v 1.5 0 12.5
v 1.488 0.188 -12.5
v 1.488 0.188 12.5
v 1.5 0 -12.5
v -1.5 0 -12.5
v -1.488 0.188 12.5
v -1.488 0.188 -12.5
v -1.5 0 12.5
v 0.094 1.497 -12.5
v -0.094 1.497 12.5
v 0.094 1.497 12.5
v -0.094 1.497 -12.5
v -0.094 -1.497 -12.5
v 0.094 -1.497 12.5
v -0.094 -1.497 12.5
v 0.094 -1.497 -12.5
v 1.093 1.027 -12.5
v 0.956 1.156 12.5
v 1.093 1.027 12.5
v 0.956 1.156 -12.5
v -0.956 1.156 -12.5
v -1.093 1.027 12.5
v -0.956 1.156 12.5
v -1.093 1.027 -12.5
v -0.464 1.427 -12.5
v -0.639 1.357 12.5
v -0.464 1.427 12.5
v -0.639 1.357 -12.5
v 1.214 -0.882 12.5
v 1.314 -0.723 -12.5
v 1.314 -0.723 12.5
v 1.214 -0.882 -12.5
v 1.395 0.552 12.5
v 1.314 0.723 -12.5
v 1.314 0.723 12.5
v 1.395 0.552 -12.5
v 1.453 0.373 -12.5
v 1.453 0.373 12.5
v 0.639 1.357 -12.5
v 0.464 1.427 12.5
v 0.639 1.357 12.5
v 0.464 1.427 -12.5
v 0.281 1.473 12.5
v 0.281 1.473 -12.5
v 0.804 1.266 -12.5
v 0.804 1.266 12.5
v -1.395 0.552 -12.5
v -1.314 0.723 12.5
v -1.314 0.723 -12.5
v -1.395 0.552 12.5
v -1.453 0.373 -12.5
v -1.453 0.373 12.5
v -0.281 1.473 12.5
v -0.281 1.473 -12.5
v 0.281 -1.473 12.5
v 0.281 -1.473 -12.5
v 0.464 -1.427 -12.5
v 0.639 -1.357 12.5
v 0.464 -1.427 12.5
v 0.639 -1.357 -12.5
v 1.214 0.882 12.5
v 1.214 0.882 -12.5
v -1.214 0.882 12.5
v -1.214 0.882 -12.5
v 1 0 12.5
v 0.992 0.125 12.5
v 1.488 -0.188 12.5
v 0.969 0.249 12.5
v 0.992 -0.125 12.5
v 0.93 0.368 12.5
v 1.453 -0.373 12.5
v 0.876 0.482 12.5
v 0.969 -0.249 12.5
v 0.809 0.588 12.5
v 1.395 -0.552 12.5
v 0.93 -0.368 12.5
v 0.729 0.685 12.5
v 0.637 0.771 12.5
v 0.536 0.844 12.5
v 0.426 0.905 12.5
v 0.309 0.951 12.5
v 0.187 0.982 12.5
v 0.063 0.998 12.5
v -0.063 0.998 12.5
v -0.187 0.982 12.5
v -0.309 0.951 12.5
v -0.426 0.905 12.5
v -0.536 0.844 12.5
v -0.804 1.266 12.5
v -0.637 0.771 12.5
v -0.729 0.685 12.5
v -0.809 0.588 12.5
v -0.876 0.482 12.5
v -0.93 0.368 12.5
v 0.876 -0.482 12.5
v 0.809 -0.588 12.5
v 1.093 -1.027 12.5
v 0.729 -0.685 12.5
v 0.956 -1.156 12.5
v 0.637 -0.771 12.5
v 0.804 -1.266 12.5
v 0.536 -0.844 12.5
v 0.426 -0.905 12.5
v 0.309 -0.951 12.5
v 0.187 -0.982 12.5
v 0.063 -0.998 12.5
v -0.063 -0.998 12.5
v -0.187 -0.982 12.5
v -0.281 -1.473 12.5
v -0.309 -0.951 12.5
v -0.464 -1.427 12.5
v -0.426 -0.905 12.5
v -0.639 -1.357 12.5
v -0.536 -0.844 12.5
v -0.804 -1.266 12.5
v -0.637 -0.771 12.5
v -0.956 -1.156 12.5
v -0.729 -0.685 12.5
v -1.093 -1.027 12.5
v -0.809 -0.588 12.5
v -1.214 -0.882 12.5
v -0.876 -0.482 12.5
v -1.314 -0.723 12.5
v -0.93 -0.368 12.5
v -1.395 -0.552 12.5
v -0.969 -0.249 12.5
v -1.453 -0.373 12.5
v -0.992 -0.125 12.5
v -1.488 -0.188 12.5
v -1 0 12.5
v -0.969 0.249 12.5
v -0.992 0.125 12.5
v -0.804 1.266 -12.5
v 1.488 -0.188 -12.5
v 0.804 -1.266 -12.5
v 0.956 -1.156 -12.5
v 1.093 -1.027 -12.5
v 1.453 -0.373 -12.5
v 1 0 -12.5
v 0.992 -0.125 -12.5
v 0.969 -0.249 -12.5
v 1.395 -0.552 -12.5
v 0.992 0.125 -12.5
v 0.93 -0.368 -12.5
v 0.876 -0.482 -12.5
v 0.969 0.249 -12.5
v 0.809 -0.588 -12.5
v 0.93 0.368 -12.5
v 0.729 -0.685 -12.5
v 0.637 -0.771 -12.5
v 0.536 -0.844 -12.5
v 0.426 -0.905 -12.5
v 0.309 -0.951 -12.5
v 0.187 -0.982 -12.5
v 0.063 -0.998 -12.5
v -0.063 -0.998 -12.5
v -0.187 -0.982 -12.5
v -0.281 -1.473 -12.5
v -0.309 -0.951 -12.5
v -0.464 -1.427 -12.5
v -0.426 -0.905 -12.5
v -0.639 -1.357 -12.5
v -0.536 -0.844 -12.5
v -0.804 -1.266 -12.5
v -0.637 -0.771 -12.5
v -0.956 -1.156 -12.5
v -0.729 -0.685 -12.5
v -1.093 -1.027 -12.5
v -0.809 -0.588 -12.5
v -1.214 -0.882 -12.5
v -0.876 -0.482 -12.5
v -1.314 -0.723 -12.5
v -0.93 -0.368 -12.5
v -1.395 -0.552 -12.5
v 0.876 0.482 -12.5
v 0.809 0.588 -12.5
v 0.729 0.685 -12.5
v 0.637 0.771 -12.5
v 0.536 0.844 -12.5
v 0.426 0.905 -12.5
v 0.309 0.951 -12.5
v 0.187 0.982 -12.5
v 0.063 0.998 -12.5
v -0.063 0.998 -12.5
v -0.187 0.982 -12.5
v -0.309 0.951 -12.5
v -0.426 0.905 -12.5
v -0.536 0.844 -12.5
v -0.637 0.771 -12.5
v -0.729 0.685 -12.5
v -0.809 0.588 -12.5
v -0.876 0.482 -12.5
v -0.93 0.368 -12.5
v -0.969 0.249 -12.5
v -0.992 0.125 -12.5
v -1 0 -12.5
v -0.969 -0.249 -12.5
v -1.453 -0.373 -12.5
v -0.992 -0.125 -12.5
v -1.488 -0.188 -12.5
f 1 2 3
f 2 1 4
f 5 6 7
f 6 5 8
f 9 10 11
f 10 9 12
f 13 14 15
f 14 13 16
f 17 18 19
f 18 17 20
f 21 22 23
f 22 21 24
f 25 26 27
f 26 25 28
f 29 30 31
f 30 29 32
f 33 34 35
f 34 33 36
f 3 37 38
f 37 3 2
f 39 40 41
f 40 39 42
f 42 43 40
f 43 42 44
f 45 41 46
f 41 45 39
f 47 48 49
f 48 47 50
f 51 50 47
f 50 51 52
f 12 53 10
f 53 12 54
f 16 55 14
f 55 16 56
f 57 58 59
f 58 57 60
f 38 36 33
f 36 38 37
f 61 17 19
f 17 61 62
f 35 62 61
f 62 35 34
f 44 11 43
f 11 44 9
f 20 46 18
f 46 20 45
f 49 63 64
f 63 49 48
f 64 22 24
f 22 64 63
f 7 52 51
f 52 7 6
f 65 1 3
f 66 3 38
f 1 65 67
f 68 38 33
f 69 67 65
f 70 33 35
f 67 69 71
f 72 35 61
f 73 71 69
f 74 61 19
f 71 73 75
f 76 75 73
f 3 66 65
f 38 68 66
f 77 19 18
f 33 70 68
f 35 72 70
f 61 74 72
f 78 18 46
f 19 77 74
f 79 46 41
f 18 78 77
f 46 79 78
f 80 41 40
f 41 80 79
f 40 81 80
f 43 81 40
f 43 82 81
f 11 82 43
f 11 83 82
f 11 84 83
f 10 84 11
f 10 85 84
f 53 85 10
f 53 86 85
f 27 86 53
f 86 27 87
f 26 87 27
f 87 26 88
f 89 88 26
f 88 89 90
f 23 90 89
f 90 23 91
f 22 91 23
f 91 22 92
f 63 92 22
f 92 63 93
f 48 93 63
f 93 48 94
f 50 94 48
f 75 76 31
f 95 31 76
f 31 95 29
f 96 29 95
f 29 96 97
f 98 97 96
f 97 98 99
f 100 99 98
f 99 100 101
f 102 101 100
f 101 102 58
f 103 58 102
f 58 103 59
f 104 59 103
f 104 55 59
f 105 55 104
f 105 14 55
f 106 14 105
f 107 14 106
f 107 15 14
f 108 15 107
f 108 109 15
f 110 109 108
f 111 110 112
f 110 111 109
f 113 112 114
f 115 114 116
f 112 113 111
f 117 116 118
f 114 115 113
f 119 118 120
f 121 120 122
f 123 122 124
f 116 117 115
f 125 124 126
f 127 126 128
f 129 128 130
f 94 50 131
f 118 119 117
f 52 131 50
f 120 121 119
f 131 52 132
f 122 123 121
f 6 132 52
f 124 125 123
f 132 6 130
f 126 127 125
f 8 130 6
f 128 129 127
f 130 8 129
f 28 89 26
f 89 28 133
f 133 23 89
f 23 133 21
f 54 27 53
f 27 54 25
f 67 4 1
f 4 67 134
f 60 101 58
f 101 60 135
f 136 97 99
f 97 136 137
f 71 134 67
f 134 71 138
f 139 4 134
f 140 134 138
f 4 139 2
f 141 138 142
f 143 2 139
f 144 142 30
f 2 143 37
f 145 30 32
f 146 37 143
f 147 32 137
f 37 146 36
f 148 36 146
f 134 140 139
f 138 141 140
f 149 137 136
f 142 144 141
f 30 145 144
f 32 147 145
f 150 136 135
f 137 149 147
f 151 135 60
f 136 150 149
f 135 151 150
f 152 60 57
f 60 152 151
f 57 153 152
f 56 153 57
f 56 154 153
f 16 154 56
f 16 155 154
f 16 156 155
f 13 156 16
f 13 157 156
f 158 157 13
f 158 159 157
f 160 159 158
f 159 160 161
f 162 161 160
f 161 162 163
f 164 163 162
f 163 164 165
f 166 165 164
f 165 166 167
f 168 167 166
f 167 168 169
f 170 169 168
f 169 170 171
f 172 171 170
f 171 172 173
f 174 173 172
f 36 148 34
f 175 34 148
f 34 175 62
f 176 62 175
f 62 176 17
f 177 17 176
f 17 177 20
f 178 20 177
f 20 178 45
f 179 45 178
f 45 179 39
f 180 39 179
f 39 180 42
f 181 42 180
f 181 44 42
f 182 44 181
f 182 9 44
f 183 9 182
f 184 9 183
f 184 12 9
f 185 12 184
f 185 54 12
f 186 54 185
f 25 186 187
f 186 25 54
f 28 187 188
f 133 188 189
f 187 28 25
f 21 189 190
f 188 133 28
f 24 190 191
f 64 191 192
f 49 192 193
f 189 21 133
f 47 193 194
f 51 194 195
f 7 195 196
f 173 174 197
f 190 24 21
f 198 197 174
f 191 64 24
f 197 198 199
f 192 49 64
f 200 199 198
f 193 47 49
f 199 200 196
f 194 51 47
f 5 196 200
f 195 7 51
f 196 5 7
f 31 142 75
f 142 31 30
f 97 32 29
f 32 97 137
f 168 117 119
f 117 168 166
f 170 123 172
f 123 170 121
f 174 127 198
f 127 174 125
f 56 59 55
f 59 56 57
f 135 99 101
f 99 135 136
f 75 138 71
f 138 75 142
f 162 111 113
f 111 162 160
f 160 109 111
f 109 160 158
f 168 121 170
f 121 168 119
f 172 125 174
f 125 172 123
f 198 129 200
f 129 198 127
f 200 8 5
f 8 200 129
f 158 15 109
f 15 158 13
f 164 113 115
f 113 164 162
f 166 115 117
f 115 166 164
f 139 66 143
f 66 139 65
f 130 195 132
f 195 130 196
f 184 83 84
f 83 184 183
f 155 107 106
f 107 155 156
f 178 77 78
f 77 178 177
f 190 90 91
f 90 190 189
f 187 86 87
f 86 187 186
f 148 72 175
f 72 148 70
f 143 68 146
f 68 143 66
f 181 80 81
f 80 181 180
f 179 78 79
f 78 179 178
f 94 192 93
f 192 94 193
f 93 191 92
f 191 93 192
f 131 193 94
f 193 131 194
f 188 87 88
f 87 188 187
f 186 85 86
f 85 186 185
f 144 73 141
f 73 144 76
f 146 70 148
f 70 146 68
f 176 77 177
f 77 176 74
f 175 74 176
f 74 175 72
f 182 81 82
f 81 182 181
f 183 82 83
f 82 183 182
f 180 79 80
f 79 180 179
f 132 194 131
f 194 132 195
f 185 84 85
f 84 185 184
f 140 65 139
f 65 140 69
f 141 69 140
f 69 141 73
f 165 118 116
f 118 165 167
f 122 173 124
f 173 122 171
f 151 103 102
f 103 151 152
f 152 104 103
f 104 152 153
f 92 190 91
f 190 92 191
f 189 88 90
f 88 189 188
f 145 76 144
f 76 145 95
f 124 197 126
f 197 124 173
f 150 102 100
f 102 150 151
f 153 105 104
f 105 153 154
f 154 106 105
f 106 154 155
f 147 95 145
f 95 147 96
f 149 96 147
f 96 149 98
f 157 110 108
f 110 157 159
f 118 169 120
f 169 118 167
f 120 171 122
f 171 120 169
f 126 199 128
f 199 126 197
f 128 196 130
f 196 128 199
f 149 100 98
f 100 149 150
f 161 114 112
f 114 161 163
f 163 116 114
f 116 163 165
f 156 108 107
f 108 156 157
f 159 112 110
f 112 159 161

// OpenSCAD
$fn = 50;


difference() {
	union() {
		translate(v = [0, 0, -12.5000000000]) {
			cylinder(h = 25, r = 1.5000000000);
		}
	}
	union() {
		translate(v = [0, 0, -100.0000000000]) {
			cylinder(h = 200, r = 1.0000000000);
		}
	}
}
